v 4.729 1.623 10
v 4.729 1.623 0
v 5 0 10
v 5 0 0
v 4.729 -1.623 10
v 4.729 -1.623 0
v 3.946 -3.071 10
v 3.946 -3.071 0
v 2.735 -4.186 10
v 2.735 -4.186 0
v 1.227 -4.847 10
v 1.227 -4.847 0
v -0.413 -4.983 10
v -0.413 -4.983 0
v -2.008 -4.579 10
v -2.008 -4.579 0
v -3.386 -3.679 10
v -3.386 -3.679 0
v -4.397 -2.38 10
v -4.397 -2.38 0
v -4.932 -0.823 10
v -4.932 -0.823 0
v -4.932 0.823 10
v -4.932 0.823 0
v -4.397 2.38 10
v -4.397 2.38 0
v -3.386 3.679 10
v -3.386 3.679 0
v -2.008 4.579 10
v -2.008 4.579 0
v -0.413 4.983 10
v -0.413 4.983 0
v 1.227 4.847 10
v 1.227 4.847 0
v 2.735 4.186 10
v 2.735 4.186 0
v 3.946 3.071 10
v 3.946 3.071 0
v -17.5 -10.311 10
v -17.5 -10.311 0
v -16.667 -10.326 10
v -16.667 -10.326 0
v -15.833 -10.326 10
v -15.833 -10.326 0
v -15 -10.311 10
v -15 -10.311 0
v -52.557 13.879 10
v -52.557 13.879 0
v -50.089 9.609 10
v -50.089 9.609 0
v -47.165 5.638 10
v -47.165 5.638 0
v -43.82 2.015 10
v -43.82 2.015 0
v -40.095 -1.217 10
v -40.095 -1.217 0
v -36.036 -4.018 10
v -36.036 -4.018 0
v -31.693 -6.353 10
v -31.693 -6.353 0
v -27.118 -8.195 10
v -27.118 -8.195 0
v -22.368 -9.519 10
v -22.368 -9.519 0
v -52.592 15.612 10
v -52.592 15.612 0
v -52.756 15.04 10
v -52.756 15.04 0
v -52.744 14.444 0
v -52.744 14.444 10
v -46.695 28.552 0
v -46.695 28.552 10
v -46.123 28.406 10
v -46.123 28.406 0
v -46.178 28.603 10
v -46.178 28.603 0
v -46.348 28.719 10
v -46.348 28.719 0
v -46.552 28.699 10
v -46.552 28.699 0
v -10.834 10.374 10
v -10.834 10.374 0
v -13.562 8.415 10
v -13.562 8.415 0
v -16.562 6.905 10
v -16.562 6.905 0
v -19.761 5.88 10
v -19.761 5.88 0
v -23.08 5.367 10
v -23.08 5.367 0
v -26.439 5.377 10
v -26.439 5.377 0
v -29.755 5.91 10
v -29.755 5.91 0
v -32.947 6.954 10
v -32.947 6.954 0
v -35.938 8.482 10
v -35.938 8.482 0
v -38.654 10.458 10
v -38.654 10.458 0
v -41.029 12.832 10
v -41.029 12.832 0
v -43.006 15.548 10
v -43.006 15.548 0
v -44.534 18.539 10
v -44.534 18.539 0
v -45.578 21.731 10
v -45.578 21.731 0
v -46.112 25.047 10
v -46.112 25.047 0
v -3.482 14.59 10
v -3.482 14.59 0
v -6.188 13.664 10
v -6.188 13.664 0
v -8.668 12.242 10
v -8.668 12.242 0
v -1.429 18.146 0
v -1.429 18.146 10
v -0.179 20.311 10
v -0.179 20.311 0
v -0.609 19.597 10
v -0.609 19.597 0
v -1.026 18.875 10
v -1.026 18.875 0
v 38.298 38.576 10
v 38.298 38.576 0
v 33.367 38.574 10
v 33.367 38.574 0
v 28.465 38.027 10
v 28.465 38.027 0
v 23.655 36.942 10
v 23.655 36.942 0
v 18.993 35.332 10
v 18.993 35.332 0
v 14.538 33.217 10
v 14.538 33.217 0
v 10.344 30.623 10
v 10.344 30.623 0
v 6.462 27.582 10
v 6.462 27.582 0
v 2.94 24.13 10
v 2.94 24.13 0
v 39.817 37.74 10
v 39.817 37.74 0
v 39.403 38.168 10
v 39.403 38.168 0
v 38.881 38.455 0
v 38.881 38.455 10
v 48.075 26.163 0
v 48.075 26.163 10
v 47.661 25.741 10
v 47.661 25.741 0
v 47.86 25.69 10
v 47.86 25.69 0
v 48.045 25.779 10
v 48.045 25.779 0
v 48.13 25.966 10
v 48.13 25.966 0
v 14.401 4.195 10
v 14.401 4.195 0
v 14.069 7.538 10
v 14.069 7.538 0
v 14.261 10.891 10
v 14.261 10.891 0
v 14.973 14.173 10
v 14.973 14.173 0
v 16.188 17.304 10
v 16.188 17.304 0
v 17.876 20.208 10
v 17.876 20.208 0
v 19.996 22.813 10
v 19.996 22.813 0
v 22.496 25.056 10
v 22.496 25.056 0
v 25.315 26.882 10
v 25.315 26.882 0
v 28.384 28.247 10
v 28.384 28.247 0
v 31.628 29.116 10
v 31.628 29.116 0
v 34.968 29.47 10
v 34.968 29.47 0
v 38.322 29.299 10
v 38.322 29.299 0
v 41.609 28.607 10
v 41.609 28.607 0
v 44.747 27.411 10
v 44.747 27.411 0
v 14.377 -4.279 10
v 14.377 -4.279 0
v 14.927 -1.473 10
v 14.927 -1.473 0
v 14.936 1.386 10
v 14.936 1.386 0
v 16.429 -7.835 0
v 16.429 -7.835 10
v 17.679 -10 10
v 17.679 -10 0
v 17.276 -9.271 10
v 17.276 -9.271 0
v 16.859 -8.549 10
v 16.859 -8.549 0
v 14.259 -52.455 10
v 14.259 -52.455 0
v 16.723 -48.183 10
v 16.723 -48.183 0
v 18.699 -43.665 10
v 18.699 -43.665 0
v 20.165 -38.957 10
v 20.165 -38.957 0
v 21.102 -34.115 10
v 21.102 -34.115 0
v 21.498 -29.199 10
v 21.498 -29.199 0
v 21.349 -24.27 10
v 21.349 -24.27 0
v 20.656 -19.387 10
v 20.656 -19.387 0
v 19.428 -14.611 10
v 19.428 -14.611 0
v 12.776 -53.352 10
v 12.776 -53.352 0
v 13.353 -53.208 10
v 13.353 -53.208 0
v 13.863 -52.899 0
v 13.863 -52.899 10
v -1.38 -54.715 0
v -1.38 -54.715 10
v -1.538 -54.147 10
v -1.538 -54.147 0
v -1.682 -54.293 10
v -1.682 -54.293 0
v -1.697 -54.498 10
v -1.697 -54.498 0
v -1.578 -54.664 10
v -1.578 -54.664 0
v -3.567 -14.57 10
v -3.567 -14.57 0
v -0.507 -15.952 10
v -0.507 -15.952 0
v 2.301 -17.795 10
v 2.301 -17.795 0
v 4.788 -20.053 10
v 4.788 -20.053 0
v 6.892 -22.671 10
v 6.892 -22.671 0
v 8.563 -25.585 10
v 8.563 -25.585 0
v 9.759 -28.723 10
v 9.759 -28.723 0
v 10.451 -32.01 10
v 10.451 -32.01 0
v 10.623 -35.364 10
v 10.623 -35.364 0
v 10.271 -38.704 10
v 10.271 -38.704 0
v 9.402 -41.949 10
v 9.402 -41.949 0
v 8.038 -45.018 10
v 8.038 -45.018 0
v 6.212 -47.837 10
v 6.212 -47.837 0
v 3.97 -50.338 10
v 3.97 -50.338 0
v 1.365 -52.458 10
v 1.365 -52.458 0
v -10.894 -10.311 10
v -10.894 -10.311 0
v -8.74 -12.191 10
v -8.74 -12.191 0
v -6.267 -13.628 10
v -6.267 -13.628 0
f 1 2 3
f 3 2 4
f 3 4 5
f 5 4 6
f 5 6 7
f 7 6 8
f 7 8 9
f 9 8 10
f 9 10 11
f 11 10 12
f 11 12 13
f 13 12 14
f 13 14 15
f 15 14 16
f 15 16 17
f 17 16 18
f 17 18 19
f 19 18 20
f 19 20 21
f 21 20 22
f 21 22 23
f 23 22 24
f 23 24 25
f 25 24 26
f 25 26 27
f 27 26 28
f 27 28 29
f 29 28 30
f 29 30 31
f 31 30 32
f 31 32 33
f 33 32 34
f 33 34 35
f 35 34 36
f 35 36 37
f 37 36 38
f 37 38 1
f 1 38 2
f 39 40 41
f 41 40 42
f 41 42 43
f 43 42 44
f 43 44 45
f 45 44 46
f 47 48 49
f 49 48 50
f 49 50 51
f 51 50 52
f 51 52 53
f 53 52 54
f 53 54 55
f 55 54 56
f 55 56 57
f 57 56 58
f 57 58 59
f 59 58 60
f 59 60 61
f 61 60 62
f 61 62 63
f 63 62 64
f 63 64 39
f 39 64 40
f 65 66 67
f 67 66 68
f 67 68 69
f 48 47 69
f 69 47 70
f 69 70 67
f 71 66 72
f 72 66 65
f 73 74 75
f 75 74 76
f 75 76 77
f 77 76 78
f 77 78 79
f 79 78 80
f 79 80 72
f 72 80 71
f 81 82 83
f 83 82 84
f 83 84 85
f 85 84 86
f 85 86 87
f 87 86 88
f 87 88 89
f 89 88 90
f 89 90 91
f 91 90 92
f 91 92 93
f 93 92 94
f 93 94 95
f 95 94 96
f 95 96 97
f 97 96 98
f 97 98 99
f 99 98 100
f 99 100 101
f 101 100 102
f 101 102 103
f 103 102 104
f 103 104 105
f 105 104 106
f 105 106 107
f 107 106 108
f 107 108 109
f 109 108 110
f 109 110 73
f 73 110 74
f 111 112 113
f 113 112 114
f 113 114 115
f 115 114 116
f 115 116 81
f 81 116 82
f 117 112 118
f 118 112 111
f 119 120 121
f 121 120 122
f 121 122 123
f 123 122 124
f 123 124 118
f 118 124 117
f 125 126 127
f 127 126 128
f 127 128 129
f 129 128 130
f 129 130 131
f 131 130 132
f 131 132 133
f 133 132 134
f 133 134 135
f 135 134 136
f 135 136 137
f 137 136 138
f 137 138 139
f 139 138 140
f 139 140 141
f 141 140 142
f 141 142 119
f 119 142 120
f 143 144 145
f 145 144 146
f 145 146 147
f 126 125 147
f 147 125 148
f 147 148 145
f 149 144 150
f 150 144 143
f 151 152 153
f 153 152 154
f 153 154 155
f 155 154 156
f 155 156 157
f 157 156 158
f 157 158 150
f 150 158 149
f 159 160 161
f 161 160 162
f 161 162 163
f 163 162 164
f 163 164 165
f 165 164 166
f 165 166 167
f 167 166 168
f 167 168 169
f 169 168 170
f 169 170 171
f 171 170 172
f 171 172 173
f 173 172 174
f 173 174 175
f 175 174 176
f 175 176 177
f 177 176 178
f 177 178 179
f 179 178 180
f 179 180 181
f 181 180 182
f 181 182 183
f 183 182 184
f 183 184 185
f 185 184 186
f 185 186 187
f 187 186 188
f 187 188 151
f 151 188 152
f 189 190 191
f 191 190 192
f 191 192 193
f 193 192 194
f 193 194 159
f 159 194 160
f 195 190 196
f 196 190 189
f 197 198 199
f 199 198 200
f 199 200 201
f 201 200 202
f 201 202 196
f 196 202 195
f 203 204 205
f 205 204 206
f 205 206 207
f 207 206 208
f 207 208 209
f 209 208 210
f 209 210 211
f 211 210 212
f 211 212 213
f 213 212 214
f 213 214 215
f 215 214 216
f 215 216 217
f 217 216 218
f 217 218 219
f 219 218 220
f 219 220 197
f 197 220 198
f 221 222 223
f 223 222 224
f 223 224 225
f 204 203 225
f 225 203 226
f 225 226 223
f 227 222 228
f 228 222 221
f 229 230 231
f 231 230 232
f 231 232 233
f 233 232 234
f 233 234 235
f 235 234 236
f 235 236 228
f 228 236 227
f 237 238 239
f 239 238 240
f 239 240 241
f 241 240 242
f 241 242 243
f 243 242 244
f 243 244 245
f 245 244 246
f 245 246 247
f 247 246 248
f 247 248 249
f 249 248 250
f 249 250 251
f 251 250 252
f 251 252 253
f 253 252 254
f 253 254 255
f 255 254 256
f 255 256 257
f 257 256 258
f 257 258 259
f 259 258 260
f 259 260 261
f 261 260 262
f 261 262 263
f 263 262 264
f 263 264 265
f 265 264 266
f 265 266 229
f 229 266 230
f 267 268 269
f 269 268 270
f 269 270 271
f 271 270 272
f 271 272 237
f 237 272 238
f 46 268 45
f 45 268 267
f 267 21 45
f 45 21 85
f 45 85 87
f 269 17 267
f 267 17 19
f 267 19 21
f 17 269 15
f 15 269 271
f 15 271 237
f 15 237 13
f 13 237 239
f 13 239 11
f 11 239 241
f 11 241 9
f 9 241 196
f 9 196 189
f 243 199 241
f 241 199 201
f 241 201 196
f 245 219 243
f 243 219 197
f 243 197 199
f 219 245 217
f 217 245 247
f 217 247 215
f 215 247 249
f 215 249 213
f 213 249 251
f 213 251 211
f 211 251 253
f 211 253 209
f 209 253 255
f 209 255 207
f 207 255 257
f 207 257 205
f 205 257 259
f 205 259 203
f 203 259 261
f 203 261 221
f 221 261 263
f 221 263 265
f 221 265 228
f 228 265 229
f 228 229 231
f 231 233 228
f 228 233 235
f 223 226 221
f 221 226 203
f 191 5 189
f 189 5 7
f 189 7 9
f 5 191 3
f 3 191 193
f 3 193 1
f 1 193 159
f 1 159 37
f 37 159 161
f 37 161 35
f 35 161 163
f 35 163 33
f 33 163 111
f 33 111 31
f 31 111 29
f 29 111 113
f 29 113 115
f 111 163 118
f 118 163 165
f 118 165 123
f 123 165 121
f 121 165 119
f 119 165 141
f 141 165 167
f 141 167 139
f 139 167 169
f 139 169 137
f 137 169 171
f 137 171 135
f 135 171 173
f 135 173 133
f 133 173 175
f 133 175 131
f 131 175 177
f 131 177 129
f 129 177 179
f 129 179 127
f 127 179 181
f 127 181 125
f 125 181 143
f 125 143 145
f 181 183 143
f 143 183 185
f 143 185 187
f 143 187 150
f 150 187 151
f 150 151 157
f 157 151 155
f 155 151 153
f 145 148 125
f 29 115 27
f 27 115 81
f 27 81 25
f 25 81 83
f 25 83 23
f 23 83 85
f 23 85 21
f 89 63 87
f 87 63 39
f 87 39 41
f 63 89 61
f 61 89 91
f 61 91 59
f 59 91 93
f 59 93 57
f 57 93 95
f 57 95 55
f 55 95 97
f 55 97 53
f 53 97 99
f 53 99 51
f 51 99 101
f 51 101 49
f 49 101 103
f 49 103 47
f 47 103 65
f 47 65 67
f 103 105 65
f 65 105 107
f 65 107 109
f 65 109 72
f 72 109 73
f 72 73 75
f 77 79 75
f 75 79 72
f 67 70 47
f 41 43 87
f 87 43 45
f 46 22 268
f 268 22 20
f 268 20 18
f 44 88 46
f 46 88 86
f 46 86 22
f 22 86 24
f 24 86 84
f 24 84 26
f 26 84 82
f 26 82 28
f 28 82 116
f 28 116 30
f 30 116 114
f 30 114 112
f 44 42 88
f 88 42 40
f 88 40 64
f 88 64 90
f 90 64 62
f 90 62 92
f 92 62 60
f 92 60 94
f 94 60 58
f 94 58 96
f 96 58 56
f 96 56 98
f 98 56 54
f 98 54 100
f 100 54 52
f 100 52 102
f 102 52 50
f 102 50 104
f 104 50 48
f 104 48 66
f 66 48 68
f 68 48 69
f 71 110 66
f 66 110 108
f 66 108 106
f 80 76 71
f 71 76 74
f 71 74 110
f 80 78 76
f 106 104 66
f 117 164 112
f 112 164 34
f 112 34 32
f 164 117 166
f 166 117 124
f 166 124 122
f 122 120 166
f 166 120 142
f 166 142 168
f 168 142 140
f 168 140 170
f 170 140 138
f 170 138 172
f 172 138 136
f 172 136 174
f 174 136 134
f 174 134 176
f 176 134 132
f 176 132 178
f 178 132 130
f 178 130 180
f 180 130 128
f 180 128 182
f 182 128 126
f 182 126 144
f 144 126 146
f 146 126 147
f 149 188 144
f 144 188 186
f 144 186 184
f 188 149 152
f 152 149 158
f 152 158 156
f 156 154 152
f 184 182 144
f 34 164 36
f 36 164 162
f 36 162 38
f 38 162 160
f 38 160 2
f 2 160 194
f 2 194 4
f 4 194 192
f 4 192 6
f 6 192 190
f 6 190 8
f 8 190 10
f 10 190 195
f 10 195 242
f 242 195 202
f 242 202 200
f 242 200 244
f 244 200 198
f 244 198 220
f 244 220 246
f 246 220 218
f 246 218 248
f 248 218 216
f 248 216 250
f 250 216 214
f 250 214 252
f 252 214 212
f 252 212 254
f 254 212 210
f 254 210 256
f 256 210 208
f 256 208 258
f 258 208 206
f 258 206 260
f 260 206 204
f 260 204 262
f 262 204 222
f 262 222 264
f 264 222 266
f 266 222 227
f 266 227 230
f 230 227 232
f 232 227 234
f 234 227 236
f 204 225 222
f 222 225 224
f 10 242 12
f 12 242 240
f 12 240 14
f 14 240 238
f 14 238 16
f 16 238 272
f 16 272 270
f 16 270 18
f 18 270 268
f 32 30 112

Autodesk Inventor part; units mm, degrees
ref_plane "YZ Plane" through (0, 0, 0) normal (1, 0, 0) x (0, 1, 0)
ref_plane "XZ Plane" through (0, 0, 0) normal (0, 1, 0) x (-1, 0, 0)
ref_plane "XY Plane" through (0, 0, 0) normal (0, 0, 1) x (1, 0, 0)
sketch "Sketch1" plane through (0, 0, 0) normal (0, 0, 1) x (1, 0, 0)
  circle A0 centre (0, 0) radius 15
  circle A1 centre (0, 0) radius 55
  line L0 (15, 0) -> (55, 0) construction
  circle A2 centre (35, 0) radius 20 construction
  circle A3 centre (-17.5, 30.3109) radius 20 construction
  circle A4 centre (-17.5, -30.3109) radius 20 construction
  line L1 (0, 0) -> (-10.834, 10.3742)
  line L2 (0, 0) -> (27.5, -47.6314)
  line L3 (0, 0) -> (-55, 0) construction
  line L4 (0, 0) -> (27.5, 47.6314)
  line L5 (17.5, 30.3109) -> (27.5, 47.6314) construction
  line L6 (-1.4324, 18.1475) -> (18.5676, 52.7885) construction
  line L7 (18.5676, 52.7885) -> (36.4324, 42.4743) construction
  line L8 (36.4324, 42.4743) -> (16.4324, 7.8333) construction
  line L9 (16.4324, 7.8333) -> (-1.4324, 18.1475) construction
  line L10 (-1.4324, 18.1475) -> (36.4324, 42.4743) construction
  line L11 (18.5676, 52.7885) -> (16.4324, 7.8333) construction
  line L12 (-1.4891, -18.1802) -> (18.5109, -52.8212) construction
  line L13 (18.5109, -52.8212) -> (36.4891, -42.4416) construction
  line L14 (36.4891, -42.4416) -> (16.4891, -7.8006) construction
  line L15 (16.4891, -7.8006) -> (-1.4891, -18.1802) construction
  line L16 (-1.4891, -18.1802) -> (36.4891, -42.4416) construction
  line L17 (18.5109, -52.8212) -> (16.4891, -7.8006) construction
  line L18 (-55.0081, 10.3109) -> (-15, 10.3109) construction
  line L19 (-15, 10.3109) -> (-15, -10.3109) construction
  line L20 (-15, -10.3109) -> (-55.0081, -10.3109) construction
  line L21 (-55.0081, -10.3109) -> (-55.0081, 10.3109)
  line L22 (-55.0081, 10.3109) -> (-15, -10.3109) construction
  line L23 (-15, 10.3109) -> (-55.0081, -10.3109) construction
  line L24 (-39.1178, -2.5) -> (-30.8902, -2.5) construction
  line L25 (-30.8902, -2.5) -> (-30.8902, 2.5) construction
  line L26 (-30.8902, 2.5) -> (-39.1178, 2.5) construction
  line L27 (-39.1178, 2.5) -> (-39.1178, -2.5) construction
  line L28 (-39.1178, -2.5) -> (-30.8902, 2.5) construction
  line L29 (-30.8902, -2.5) -> (-39.1178, 2.5) construction
  line L30 (-55.0081, 10.3109) -> (-55.0081, -10.3109) construction
  line L31 (-55.0081, 10.3109) -> (-55.0081, -10.3109) construction
  circle A5 centre (0, 0) radius 5
  arc A6 (-46.1231, 28.4056) -> (-10.834, 10.3742) centre (-24.6951, 26.7945) ccw
  line L32 (-15, -10.3109) -> (-10.8943, -10.3109)
  line L33 (-46.6952, 28.5525) -> (-52.5923, 15.6119)
  arc A7 (-46.1231, 28.4056) -> (-46.6952, 28.5525) centre (-46.4222, 28.4281) ccw
  arc A8 (-52.5567, 13.8792) -> (-17.5, -10.3109) centre (-12.7886, 34.0144) ccw
  arc A9 (-17.5, -10.3109) -> (-15, -10.3109) centre (-16.25, 36.3845) ccw
  arc A10 (-52.5923, 15.6119) -> (-52.5567, 13.8792) centre (-50.7724, 14.7826) ccw
  arc A11 (-1.5384, -54.1465) -> (-3.5673, -14.5696) centre (-10.8572, -34.7838) ccw
  circle A12 centre (0, 0) radius 55
  line L34 (-1.3796, -54.7155) -> (12.7758, -53.3523)
  arc A13 (14.2587, -52.455) -> (17.6795, -10) centre (-23.063, -28.0825) ccw
  arc A14 (12.7758, -53.3523) -> (14.2587, -52.455) centre (12.5841, -51.3615) ccw
  arc A15 (-1.5384, -54.1465) -> (-1.3796, -54.7155) centre (-1.4083, -54.4169) ccw
  line L35 (16.4295, -7.8349) -> (14.3766, -4.2793)
  arc A16 (17.6795, -10) -> (16.4295, -7.8349) centre (-23.3849, -32.2652) ccw
  circle A17 centre (0, 0) radius 15
  arc A18 (47.6615, 25.741) -> (14.4013, 4.1954) centre (35.5523, 7.9893) ccw
  circle A19 centre (0, 0) radius 55
  line L36 (48.0748, 26.163) -> (39.8165, 37.7403)
  arc A20 (38.2981, 38.5759) -> (-0.1795, 20.3109) centre (35.8517, -5.9319) ccw
  arc A21 (39.8165, 37.7403) -> (38.2981, 38.5759) centre (38.1883, 36.5789) ccw
  arc A22 (47.6615, 25.741) -> (48.0748, 26.163) centre (47.8305, 25.9888) ccw
  line L37 (-1.4295, 18.1458) -> (-3.4823, 14.5902)
  arc A23 (-0.1795, 20.3109) -> (-1.4295, 18.1458) centre (39.6349, -4.1193) ccw
  circle A24 centre (0, 0) radius 15
  point P0 (-27.5, 47.6314)
  point P1 (-27.5, -47.6314)
  point P2 (17.5, -30.3109)
  point P3 (-35.004, 0)
  point P4 (-45.8939, 30.3109)
  point P5 (-52.9855, 14.7493)
  point P6 (-52.9855, 14.7493)
  point P7 (-27.5, 47.6314)
  point P8 (27.5, 47.6314)
  point P9 (27.5, -47.6314)
  point P10 (-55, 0)
  point P11 (-3.3031, -54.9007)
  point P12 (13.7195, -53.2614)
  point P13 (-7.5, 12.9904)
  point P14 (-27.5, -47.6314)
  point P15 (-55, 0)
  point P16 (27.5, 47.6314)
  point P17 (27.5, -47.6314)
  point P18 (49.1969, 24.5898)
  point P19 (39.266, 38.5121)
  point P20 (-7.5, -12.9904)
  point P21 (7.5, -12.9904)
  point P22 (-3.5673, -14.5696)
  point P23 (14.4013, 4.1954)
  dimension "d0" = 30
  dimension "d1" = 40
  dimension "d4" = 360
  dimension "d6" = 5
  dimension "d11" = 10
  dimension "d14" = 0.3
  dimension "d24" = 2
  dimension "d27" = 360
extrude "Extrusion1" add sketch "Sketch1" along normal blind 10 contours A0 L2 A5 L4 | A0 L4 A20 A21 L36 A22 A18 | L35 A16 A13 L2 A0 | L4 A5 L1 A0 | A0 L37 A23 A20 L4 | L2 A13 A14 L34 A15 A11 A0 | A0 L1 A5 L2 | A0 L32 A9 A8 A10 L33 A7 A6
properties part number "Combine mk3"
